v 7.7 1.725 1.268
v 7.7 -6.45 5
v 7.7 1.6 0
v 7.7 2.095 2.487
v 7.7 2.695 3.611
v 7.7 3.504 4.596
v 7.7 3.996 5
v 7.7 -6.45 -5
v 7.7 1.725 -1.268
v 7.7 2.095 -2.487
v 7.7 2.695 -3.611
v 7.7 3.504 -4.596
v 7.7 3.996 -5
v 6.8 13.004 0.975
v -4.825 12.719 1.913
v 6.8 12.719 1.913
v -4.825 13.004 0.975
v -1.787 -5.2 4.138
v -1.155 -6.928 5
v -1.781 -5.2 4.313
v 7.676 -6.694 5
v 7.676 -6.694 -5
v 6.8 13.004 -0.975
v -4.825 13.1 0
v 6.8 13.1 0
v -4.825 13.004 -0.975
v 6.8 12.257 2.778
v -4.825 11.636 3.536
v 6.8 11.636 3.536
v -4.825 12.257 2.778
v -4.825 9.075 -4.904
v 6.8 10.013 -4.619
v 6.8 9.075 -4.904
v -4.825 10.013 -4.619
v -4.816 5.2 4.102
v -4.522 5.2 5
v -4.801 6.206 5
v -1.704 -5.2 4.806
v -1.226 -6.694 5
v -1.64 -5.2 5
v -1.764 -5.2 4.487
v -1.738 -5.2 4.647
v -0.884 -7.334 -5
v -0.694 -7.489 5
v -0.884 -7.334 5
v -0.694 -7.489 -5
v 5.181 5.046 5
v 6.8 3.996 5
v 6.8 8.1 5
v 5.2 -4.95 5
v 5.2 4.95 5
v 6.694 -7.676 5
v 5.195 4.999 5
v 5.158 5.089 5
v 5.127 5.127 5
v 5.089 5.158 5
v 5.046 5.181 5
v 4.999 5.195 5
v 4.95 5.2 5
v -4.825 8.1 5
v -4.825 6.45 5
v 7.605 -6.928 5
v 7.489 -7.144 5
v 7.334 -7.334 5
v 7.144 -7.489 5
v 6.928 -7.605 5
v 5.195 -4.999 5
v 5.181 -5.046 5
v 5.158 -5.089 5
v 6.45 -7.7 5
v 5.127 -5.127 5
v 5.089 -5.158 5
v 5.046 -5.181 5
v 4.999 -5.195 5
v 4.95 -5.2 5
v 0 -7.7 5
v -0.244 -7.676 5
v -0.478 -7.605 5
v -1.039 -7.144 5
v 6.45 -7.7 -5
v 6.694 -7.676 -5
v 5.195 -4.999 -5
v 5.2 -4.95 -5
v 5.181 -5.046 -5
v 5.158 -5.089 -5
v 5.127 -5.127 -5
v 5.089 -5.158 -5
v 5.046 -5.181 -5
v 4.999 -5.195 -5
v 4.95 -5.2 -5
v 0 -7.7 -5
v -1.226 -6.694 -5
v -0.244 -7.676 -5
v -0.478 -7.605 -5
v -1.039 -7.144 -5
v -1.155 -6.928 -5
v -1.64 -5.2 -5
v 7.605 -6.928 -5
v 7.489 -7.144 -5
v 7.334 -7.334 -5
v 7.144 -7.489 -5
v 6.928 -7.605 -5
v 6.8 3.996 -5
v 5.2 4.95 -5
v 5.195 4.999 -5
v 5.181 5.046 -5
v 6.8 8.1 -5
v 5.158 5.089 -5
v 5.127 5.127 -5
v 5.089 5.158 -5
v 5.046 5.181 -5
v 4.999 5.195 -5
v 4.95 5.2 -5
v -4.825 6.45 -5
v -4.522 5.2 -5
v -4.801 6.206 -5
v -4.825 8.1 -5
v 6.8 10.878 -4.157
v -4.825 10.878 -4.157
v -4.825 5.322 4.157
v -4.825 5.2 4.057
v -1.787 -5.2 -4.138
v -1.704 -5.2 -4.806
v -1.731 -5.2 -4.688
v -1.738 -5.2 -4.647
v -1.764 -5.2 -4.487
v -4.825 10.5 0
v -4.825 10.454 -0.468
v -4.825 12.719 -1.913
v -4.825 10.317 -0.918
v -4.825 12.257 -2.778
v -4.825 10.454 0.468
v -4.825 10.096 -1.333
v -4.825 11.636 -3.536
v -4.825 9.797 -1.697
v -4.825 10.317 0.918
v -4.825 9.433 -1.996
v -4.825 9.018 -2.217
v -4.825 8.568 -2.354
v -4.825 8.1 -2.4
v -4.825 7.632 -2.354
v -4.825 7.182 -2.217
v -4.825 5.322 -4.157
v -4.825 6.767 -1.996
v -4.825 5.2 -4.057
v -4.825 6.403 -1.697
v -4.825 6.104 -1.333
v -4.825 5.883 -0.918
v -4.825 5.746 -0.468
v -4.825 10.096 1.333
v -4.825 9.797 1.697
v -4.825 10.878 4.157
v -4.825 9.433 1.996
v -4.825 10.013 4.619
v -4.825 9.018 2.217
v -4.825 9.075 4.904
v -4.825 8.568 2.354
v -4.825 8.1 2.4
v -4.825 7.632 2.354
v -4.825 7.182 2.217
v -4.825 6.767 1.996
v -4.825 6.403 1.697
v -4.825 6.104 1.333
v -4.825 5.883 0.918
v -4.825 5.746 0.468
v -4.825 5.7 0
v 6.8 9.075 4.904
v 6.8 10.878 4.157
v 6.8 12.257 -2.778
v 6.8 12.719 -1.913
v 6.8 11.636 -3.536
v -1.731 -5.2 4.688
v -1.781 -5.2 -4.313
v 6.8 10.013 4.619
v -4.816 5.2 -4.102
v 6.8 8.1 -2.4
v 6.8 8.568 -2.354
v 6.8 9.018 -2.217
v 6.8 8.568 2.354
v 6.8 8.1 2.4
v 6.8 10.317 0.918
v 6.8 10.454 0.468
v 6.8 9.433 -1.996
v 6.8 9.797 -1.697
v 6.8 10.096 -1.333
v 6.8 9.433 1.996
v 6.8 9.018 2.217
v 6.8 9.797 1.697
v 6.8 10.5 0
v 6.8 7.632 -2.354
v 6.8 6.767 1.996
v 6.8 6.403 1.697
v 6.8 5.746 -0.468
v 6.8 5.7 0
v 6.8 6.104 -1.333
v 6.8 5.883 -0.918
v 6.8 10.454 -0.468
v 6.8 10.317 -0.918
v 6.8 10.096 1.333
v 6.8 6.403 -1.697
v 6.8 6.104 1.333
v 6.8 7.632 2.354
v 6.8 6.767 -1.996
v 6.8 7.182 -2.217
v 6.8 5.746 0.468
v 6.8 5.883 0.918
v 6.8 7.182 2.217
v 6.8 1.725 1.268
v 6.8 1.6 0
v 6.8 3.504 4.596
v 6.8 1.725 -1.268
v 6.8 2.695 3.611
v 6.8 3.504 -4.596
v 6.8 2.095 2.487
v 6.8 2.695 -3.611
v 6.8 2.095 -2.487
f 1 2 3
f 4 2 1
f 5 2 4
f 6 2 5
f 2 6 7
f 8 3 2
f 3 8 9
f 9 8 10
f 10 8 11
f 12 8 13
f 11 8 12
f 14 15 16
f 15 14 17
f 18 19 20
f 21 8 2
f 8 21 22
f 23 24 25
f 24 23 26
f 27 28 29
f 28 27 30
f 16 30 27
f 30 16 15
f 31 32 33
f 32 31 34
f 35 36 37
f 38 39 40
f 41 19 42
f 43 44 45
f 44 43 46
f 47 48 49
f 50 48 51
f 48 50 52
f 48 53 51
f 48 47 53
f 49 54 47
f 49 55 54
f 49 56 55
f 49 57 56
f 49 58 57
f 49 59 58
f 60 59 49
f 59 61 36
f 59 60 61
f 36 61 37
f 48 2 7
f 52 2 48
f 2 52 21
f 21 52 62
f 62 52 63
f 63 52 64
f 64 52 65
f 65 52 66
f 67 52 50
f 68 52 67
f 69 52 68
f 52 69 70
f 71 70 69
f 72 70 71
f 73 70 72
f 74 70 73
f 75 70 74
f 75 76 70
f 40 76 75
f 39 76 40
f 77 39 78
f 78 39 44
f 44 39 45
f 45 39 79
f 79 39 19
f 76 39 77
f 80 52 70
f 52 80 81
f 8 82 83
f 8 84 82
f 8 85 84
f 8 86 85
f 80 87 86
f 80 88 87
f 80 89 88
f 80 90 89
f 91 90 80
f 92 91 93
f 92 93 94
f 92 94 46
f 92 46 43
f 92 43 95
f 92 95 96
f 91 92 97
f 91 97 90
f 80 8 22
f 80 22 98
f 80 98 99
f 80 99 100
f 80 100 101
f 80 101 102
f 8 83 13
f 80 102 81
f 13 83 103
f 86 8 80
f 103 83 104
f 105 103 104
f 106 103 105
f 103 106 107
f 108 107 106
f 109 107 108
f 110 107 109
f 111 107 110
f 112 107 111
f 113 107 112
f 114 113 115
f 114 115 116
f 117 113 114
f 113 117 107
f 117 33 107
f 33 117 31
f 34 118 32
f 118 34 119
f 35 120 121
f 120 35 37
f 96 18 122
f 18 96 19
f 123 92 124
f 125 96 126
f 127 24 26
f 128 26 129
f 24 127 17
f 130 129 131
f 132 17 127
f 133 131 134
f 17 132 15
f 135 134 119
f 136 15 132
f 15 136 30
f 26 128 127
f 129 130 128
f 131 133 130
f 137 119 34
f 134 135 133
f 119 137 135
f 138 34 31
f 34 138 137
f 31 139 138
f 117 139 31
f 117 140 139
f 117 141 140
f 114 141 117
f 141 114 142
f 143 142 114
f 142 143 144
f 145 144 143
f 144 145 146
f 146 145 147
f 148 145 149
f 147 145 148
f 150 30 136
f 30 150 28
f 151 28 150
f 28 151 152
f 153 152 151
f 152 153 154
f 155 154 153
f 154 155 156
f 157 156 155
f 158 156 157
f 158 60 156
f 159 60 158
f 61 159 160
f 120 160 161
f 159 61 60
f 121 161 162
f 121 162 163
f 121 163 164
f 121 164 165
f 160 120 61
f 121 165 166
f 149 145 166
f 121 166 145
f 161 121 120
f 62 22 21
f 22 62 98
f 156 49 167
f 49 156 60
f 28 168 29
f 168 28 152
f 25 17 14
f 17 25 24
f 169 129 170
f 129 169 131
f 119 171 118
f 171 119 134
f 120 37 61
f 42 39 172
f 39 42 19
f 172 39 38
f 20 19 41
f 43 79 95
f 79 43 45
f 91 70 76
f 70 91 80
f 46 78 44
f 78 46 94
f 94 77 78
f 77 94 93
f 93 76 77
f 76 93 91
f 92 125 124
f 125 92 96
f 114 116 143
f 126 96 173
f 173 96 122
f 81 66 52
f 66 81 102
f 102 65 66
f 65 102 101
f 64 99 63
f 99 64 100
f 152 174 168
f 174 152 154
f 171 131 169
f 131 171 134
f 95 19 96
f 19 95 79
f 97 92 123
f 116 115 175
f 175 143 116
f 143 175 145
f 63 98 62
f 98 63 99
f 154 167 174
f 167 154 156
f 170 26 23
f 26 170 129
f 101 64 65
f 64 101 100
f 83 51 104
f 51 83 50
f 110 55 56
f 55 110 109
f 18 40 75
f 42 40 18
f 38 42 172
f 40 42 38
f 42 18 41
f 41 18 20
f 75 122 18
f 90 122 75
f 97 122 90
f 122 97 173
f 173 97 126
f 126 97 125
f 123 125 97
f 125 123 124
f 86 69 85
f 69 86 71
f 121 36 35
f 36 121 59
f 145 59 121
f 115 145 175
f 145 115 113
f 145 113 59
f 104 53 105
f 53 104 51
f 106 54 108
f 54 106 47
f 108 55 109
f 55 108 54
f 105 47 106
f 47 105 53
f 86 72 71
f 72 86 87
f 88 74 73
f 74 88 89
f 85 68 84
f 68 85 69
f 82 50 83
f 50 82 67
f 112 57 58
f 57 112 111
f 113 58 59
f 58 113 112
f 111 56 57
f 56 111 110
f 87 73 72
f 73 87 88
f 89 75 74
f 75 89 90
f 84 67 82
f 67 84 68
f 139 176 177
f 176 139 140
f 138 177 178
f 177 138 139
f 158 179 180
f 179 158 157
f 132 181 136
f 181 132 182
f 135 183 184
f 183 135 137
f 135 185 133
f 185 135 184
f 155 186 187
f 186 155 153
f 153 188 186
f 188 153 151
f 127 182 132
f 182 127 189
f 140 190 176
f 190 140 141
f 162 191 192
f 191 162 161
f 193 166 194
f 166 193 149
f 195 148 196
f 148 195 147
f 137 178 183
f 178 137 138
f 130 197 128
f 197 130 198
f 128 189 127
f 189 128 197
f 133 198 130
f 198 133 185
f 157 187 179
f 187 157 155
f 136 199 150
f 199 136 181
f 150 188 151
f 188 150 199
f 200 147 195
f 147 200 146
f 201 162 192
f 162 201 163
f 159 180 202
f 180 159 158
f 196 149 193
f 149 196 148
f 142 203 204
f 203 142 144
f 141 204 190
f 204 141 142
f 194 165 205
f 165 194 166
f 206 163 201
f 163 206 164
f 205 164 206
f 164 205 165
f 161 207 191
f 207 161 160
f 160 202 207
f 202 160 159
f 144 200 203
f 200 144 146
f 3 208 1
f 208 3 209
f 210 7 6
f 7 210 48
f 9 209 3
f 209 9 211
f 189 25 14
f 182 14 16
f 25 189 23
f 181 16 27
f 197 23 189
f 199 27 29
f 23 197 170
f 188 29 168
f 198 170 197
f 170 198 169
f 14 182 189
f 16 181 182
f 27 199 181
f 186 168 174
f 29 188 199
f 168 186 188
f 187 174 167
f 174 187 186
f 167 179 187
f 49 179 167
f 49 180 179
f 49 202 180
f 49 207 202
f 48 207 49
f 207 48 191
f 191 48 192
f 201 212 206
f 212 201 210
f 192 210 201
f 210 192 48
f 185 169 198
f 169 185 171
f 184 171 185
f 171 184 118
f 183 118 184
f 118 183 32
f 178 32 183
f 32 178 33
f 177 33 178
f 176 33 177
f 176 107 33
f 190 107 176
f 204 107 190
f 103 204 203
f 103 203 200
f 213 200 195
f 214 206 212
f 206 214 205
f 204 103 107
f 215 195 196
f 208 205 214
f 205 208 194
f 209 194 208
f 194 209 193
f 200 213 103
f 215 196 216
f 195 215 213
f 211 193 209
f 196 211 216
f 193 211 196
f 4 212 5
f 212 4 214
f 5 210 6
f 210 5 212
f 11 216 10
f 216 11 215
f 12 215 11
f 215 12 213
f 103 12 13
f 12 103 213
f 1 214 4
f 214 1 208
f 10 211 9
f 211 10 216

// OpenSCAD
// file: ../shared/Tooth Profile.scad
//Simple Trapezoid Tooth Profile - used by Belt - don't print
use <Chamfer-Fillet-Machine.scad>
pressure_angle = 14.5;//degrees
tooth_pitch = 16;//mm
half_tooth_pitch = tooth_pitch/2;
root_fillet_radius = 2;//mm
tooth_height = 5;//mm

function tooth_points(
    pressure_angle=14.5,
    tooth_pitch=16,
    root_fillet_radius=2,
    tooth_height=12,
    descent=0.1) = 
    let(
        //half pitch
        half_tooth_pitch = tooth_pitch/2,
        
        //find the tangent contact points
        x_fact = cos(pressure_angle),
        y_fact = sin(pressure_angle),
        
        //find the x and y distance from circle centre
        dx_radial = x_fact * root_fillet_radius,
        dy_radial = y_fact * root_fillet_radius,

        //find the tangent coordinates
        x_tang = -half_tooth_pitch + dx_radial,
        y_tang = root_fillet_radius - dy_radial,

        //find gradient of the radial
        radial_gradient = -dy_radial / dx_radial,

        //find gradient of tangent
        tangent_gradient = -1 / radial_gradient,

        //calculate intersection point on baseline (y = 0)
        x_base_disp = y_tang / tangent_gradient,
        x_base = x_tang - x_base_disp,

        //calculate intersection point on top (y = height)
        y_top_disp = (tooth_height - y_tang),
        x_top_disp = y_top_disp / tangent_gradient,
        x_top = x_tang + x_top_disp,
        pts = [
            //[0, -descent, 0],
            [-(half_tooth_pitch + root_fillet_radius), -descent, 0],
            [-(half_tooth_pitch + root_fillet_radius), 0, 0],
            [x_base, 0, root_fillet_radius],
            [x_top, tooth_height, 1],
            [-x_top, tooth_height, 1],
            [-x_base, 0, root_fillet_radius],
            [half_tooth_pitch + root_fillet_radius, 0, 0],
            [half_tooth_pitch + root_fillet_radius, -descent, 0],
            [-(half_tooth_pitch + root_fillet_radius), -descent, 0]
            //[0, -descent, 0]
        ]
    ) pts;

module tooth_pitch_debug(
    pressure_angle=14.5,
    tooth_pitch=16,
    root_fillet_radius=2,
    tooth_height=12) {

    //draw 2 circles to represent the root fillets, and space them apart by the pitch
    translate([-tooth_pitch/2, root_fillet_radius]) circle(root_fillet_radius, $fn=32);
    translate([tooth_pitch/2, root_fillet_radius]) circle(root_fillet_radius, $fn=32);

    //simulate a zero degree pressure angle
    %translate([0, tooth_height/2]) square([tooth_pitch - (2 * root_fillet_radius), tooth_height], center=true);

    //find the tangent contact points
    x_fact = cos(pressure_angle);
    y_fact = sin(pressure_angle);
    echo("x_fact: ", x_fact, "y_fact: ", y_fact);
    //find the x and y distance from circle centre
    dx_radial = x_fact * root_fillet_radius;
    dy_radial = y_fact * root_fillet_radius;
    echo("dx_radial: ", dx_radial, "dy_radial: ", dy_radial);

    x_tang = -half_tooth_pitch + dx_radial;
    y_tang = root_fillet_radius - dy_radial;
    echo("x_tang: ", x_tang, "y_tang: ", y_tang);

    //annotate tangent contact points
    color("black", 0.25) translate([x_tang, y_tang]) circle(0.5, $fn=32);
    color("black", 0.25) translate([-x_tang, y_tang]) circle(0.5, $fn=32);

    //annotate radial
    color("blue") translate([-half_tooth_pitch, root_fillet_radius]) vector_arrow([dx_radial, -dy_radial]);

    //find gradient of the radial
    radial_gradient = -dy_radial / dx_radial;
    echo("radial_gradient: ", radial_gradient);

    //find gradient of tangent
    tangent_gradient = -1 / radial_gradient;
    echo("tangent_gradient: ", tangent_gradient);

    //calculate intersection point on baseline (y = 0)
    x_base_disp = y_tang / tangent_gradient;
    x_base = x_tang - x_base_disp;
    echo("x_base_disp: ", x_base_disp, "x_base: ", x_base);

    //annotate triangle
    color("yellow", 0.25) polygon([
        [x_tang, y_tang],
        [x_tang, 0],
        [x_base, 0]
    ]);

    //annotate base contact points
    color("black", 0.25) translate([x_base, 0]) circle(0.5, $fn=32);

    //create tangent line vector
    Vtang = [dy_radial, dx_radial];
    Vtangex = extend_vect(Vtang, 20);
    echo("Vtang: ", Vtang);

    //annotate tangents
    color("red") translate([x_base, 0]) vector_line(Vtangex);

    //label pressure angle
    color("black") translate([-half_tooth_pitch, tooth_height + 1]) text(str("Pressure Angle: ", pressure_angle, " degrees"), size=0.5);

    //calculate intersection point on top (y = height)
    y_top_disp = (tooth_height - y_tang);
    x_top_disp = y_top_disp / tangent_gradient;
    echo("y_top_disp: ", y_top_disp, "x_top_disp: ", x_top_disp);
    x_top = x_tang + x_top_disp;
    echo("x_top: ", x_top);

    //annotate triangle
    color("yellow", 0.35) polygon([
        [x_tang, y_tang],
        [x_tang, tooth_height],
        [x_top, tooth_height]
    ]);

    //annotate top contact points
    color("black", 0.25) translate([x_top, tooth_height]) circle(0.5, $fn=32);
}
*tooth_pitch_debug();
// file: ../shared/Constants.scad
/*
    Constants.scad contains all the global constants
*/
use <Tooth Profile.scad>

//idler hub
idle_bearing_od = 16;//mm
idle_bearing_fit_dia = idle_bearing_od * 1.03;//push-in fit for bearing
idle_bearing_thickness = 5.25;//push-in fit
hub_thickness = 15;
hub_dia = 24;
idle_shaft_hole_dia = 6.5;//clearance for 6mm shaft
scraper_fix_hole_dia = 4.5;//mm
idler_width = 25;//mm
idler_dia = 50;//mm
idler_spacing = 0.5;//mm
radial_spacing = 5;//mm
tube_insertion = 25;//mm
tube_outer_dim = 10;//10mm square tube
tube_dim = sqrt(tube_outer_dim^2 + tube_outer_dim^2) * 1.04;
echo("tube_outer_dim:", tube_outer_dim, "tube_dim:", tube_dim);

//idler wheel
idle_wheel_thickness = 25;
idle_wheel_dia = 50;
idle_shaft_dia = 6.25;//mm
tooth_space_thickness = 11;//mm
tooth_space_dia = 35;//mm
runner_thickness = (idle_wheel_thickness - tooth_space_thickness)/2;
edge_radius = 1;
dee_shaft_offset = 1;
spigot_scale_factor = 1.0;//grow spigot hole if necessary for a tight fit

//idler axle
idle_rod_dia = 5.92;//mm tight fit for bearing
idle_rod_length = 25 + (2 * 0.5) + (2 * 15) + (2 * 2);//mm idler width + 2 spacers + 2 hubs + 2 washers
echo("idle_rod_length", idle_rod_length);
idle_rod_cap_length = 2;//mm
idle_rod_clip_width = 1;//mm
idle_rod_clip_dia = 4.5;//mm

//knurled wheel and locknut
//knob parameters
KNOB_DIAM=25;
//screw parameters
SCREWHEAD_FACETOFACE=0;
SCREWHEAD_DEPTH=12;
THRU_HOLE_DIAM=9.5;
//grippy cutouts parameters
NUM_GRIP_CUTOUTS=20;
GRIP_CUTOUT_DIAM=4;
CUTOUT_RADIUS_ADJ=1;
KNURLED_WHEEL_HEIGHT=6;
KNURLED_WHEEL_NUM_TURNS = 3.5;
LOCKNUT_HEIGHT=3;
LOCKNUT_NUM_TURNS = 1.375;

//motor plate
gearbox_collar_hole_dia = 22.2;//mm
motor_plate_thickness = 4;//mm
motor_plate_corner_dia = 15;//mm
plan_motor_dia = 36.3;//mm
plan_shoulder_base_thickness = 3;// mm
plan_shoulder_thickness = 5;// mm
plan_shoulder_height = 20;// mm

//planetary motor bracket
pmb_motor_dia = 36;//mm 35.5 plus clearance
pmb_base_thickness = 3;//mm
pmb_foot_thickness = 5;//mm
pmb_width = 10;//mm
pmb_thickness = 4;//mm
pmb_chamfer_radius = 1;//mm
pmb_fix_hole_dia = 4.5;//mm

//bearing backplate
drive_bearing_bush_dia = 24;//mm
drive_bearing_od = 16;//mm
drive_bearing_fit_dia = drive_bearing_od * 1.02;//push fit for bearing
drive_bearing_recess = 6;//mm 

//drive sprocket
sprocket_spacing = 0.5;//mm
tooth_height = 5;//mm 4 + 1 to sink into cylinder

//tube clamp
clamp_width = 10;//mm
clamp_effect = 0.75;//mm
clamp_int_dia = 0.5;//mm
clamp_ext_dia = 2.5;//mm
clamp_fix_hole_dia = 4.8;//mm
clamp_washer_dia = 13;// for 12.5mm washer
clamp_washer_thickness = 1;//mm

//drive spindle
plan_motor_drive_shaft_dia = 8;//mm
spindle_outer_dia = 20;//mm fn=6 for hex
spindle_length = 25;//mm
spindle_shoulder_dia = 30;//mm
spindle_shoulder_width = 10;//mm
drive_sprocket_shaft_hole_dia = 8.32;//for 8mm shaft
spindle_dee_shaft_offset = 1;//mm
spindle_dee_shaft_dia = plan_motor_drive_shaft_dia * 1.0175;//mm interference fit
spindle_drive_shaft_length = 25;//mm shaft is 17.5 only 14mm of which is D'eed
spindle_bearing_shaft_dia = 9.3;//space for M8 thread
spindle_thread_num_turns = 9;
spindle_thread_x_factor = 1.04;
spindle_thread_y_factor = 1.04;
spindle_thread_z_factor = 1.0;

//drive sprocket shaft
drive_sprocket_shaft_num_turns = 14;
bearing_section_length = 10;//mm
back_bearing_stub_dia = 7.95;//mm for 8mm hole in bearing

//drive sprocket cog
tth_num_teeth = 9;
tth_pitch_angle = 360 / tth_num_teeth;
drive_sprocket_dia = 50;
tooth_depression = 1.1;//to smooth base fillets
sprock_tooth_x_scale = 0.8;//put space between teeth
sprock_tooth_y_scale = 1.05;//
sprock_thickness = 11;//mm for a 7|11|7 sandwich
tth_sprock_press_angle = 5;
tth_tooth_pitch = 8;
tth_root_fillet_radius = 1;
tth_tooth_height = 5;
sprock_tooth_profile_pts = tooth_points(tth_sprock_press_angle, tth_tooth_pitch, tth_root_fillet_radius, tth_tooth_height);

//drive plain cog
plain_cog_dia = 50;
plain_cog_thickness = 7;
plain_cog_rim_thickness = 3;//mm

//just for assembly
wheelbase = 200;//mm horizontal distance between idle wheel centres
track_triangle_height = 60;//mm vertical distance between drive motor and tube centres
// main file
//tube clamp attaches tubes to plates without impeding tensioning rods
include <../shared/Constants.scad>
module tube_clamp() {
    //reference tube
    //color("silver") cube([20, tube_outer_dim, tube_outer_dim], center=true);

    eff_tube_outer_dim = tube_outer_dim * 1.04;
    echo("tube_outer_dim: ", tube_outer_dim, "eff_tube_outer_dim: ", eff_tube_outer_dim);
    major_dim = (eff_tube_outer_dim + clamp_ext_dia)/2;
    minor_dim = (eff_tube_outer_dim - clamp_int_dia)/2;
    pillar_offset = (eff_tube_outer_dim + clamp_fix_hole_dia + 1)/2;
    rotate([0, 180, 0]) {
        difference() { 
            hull() {
                translate([major_dim - clamp_ext_dia - (clamp_effect/2), major_dim, 0]) cylinder(h=clamp_width, d=clamp_ext_dia, center=true, $fn=32);
                translate([0, -major_dim, 0]) cylinder(h=clamp_width, d=clamp_ext_dia, center=true, $fn=32);
                translate([-major_dim, major_dim, 0]) cylinder(h=clamp_width, d=clamp_ext_dia, center=true, $fn=32);
                translate([-major_dim, -major_dim, 0]) cylinder(h=clamp_width, d=clamp_ext_dia, center=true, $fn=32);
                //pillar
                translate([-clamp_ext_dia/2, pillar_offset, 0]) rotate([0, -90, 0]) cylinder(h=eff_tube_outer_dim + clamp_ext_dia - clamp_effect, d=clamp_width, center=true, $fn=32);
            }
            hull() {
                translate([minor_dim+1, minor_dim, 0]) cylinder(h=clamp_width + 0.1, d=clamp_int_dia, center=true, $fn=32);
                translate([minor_dim, -minor_dim, 0]) cylinder(h=clamp_width + 0.1, d=clamp_int_dia, center=true, $fn=32);
                translate([-minor_dim, minor_dim, 0]) cylinder(h=clamp_width + 0.1, d=clamp_int_dia, center=true, $fn=32);
                translate([-minor_dim, -minor_dim, 0]) cylinder(h=clamp_width + 0.1, d=clamp_int_dia, center=true, $fn=32);
            }
            //fixing hole
            translate([-clamp_ext_dia/2, pillar_offset, 0]) rotate([0, -90, 0]) cylinder(h=eff_tube_outer_dim + clamp_ext_dia + 2, d=clamp_fix_hole_dia, center=true, $fn=32);
            //washer recess
            translate([-((eff_tube_outer_dim/2) - (clamp_washer_thickness/2) + clamp_ext_dia + 0.1), pillar_offset, 0]) rotate([0, -90, 0]) cylinder(h=clamp_washer_thickness, d=clamp_washer_dia, center=true, $fn=32);
        }        
    }
}

tube_clamp();
